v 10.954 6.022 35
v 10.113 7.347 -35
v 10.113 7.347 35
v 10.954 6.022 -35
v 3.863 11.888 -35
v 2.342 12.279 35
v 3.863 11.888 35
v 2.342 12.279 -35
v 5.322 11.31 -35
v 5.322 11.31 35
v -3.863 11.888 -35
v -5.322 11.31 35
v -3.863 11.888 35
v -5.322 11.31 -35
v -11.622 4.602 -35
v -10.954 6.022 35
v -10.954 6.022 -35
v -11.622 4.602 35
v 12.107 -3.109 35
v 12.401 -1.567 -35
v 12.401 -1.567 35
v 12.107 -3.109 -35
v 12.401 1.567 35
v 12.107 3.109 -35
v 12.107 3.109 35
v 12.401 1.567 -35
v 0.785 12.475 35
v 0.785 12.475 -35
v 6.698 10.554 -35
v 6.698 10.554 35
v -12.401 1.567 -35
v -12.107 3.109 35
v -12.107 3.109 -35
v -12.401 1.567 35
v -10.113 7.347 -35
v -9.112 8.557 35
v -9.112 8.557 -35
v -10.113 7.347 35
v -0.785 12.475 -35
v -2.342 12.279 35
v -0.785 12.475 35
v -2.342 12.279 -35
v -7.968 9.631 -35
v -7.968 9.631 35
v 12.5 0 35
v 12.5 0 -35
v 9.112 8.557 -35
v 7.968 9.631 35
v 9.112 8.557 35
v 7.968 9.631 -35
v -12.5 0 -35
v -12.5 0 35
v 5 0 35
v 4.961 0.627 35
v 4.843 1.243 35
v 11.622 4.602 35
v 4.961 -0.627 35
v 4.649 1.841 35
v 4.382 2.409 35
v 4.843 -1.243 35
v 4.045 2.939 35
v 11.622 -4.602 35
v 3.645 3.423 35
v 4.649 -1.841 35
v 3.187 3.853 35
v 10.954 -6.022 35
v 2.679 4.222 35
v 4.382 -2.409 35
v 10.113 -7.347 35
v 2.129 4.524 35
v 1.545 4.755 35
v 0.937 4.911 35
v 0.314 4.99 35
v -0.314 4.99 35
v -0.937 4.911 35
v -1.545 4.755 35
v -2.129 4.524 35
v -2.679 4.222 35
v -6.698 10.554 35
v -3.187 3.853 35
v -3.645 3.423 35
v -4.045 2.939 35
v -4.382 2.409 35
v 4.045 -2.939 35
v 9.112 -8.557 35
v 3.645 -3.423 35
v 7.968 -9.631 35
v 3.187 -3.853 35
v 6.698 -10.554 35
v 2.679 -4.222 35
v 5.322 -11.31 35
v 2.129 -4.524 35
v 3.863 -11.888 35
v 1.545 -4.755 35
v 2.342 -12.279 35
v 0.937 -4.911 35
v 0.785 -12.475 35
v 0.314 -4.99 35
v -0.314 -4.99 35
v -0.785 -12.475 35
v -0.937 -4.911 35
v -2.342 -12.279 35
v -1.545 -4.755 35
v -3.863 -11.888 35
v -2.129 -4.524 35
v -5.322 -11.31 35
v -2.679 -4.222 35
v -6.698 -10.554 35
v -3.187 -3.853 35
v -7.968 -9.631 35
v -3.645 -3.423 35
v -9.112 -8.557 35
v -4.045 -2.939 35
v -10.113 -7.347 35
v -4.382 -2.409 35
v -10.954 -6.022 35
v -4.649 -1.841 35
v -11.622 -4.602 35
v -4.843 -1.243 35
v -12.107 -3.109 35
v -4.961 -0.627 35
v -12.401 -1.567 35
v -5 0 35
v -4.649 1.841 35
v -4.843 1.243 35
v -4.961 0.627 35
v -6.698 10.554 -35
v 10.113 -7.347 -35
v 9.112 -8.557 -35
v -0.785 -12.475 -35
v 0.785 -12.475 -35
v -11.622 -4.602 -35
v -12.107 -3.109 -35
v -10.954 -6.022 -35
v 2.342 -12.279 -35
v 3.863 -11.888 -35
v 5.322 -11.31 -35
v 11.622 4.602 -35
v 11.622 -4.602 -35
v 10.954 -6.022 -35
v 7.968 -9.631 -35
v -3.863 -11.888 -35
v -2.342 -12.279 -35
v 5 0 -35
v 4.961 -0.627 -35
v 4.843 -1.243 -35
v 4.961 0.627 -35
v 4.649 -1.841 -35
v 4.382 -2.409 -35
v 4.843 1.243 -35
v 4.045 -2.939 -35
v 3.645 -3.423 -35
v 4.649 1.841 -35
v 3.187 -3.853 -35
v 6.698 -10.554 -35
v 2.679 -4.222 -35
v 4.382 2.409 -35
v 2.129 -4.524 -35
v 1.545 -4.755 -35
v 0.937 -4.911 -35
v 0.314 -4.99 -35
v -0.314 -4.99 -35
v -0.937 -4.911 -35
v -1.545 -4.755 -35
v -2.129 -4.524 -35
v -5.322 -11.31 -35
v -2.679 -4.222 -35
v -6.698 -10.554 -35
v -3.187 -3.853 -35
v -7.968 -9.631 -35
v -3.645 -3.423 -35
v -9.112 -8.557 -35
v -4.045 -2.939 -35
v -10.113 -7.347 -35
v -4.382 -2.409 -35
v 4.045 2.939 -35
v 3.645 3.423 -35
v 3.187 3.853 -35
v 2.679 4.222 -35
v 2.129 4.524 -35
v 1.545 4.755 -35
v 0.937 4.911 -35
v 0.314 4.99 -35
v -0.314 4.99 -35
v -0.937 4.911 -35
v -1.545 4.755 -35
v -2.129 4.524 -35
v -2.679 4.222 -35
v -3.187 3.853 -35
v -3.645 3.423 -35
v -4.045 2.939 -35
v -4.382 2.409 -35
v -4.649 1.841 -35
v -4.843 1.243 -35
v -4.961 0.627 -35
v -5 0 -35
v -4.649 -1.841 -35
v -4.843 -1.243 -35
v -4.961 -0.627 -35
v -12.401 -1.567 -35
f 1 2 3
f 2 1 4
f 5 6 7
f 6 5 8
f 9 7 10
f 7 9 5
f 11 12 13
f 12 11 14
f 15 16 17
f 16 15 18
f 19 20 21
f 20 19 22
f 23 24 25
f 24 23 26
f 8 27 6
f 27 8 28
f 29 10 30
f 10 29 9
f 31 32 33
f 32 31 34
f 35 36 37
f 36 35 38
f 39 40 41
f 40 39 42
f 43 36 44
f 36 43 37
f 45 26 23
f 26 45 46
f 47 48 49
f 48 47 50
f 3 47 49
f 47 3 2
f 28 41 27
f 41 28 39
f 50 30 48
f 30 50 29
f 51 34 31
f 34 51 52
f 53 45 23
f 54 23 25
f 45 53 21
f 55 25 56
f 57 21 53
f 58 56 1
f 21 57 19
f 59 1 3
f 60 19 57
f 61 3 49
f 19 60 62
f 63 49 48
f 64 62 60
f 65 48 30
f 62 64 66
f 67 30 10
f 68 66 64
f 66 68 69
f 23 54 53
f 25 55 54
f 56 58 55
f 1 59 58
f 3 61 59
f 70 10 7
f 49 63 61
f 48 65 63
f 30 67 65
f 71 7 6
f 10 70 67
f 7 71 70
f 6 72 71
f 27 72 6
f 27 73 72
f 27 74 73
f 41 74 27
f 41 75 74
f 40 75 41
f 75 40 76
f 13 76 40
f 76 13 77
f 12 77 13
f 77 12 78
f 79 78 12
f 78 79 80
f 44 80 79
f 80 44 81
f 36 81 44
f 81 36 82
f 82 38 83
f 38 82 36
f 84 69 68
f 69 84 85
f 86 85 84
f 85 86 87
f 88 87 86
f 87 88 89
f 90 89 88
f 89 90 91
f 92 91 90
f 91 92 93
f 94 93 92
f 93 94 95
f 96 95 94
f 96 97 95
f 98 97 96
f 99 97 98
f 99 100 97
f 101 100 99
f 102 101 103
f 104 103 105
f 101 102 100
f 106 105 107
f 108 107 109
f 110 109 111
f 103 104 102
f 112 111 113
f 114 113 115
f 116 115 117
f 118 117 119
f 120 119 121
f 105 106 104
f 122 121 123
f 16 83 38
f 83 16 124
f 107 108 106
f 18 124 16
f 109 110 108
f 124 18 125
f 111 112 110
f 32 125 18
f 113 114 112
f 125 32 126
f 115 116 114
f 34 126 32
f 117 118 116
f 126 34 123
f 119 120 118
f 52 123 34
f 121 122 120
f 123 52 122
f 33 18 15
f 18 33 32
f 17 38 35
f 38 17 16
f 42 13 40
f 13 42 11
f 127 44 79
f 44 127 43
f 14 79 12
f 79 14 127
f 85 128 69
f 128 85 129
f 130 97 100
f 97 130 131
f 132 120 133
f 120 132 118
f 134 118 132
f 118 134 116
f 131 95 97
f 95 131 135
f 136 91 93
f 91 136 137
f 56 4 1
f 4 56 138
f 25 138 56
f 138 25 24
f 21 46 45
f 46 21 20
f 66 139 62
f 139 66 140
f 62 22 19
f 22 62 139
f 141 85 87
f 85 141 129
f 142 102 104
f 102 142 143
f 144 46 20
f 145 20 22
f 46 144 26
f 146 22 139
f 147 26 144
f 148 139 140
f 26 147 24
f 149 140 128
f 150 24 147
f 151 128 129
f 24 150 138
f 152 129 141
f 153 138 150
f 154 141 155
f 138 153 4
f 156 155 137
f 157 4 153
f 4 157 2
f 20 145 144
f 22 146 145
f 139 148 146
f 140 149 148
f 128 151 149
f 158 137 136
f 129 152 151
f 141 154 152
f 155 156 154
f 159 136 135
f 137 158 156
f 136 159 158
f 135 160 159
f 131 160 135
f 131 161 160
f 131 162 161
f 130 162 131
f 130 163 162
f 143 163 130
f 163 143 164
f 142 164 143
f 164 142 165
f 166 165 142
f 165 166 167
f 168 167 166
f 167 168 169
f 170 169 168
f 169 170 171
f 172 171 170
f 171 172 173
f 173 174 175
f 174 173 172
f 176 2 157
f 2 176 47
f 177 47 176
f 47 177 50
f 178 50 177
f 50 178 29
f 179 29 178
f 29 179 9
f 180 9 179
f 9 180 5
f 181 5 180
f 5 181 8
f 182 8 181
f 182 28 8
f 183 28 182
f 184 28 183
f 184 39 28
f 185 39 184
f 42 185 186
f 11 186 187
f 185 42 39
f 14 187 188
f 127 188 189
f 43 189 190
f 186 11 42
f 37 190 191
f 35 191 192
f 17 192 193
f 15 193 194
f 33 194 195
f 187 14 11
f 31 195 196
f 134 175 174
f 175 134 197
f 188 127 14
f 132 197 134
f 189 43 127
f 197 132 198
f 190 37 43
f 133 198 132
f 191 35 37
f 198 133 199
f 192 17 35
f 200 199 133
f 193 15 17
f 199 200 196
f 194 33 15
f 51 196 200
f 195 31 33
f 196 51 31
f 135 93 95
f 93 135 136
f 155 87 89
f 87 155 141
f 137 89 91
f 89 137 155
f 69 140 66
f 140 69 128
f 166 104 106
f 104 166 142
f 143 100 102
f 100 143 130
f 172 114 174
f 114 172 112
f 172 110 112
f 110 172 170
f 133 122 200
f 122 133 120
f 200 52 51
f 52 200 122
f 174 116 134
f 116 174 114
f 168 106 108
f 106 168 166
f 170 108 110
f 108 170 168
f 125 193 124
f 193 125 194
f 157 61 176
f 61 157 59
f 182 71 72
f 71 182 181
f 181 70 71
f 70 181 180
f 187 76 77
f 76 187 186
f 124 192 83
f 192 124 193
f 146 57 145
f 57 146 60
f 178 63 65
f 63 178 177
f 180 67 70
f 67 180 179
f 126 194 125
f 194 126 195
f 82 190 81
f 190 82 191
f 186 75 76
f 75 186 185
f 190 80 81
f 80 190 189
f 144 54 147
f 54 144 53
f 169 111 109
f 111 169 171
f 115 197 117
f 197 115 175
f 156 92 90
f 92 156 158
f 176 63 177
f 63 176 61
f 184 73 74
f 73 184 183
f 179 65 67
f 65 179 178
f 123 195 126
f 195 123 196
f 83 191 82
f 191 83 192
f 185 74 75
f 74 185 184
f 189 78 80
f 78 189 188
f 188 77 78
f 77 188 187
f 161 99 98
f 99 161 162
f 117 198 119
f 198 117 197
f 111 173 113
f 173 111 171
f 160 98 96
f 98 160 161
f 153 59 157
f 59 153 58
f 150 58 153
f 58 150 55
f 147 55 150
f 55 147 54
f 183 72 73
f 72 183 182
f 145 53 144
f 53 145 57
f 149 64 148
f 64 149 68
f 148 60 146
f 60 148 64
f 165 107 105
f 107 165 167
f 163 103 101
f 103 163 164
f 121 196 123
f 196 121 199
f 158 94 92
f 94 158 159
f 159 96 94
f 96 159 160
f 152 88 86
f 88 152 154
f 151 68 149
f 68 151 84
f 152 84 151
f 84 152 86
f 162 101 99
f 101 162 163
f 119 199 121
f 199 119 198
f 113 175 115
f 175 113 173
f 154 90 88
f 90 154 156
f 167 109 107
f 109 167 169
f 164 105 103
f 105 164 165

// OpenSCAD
$fn = 50;


difference() {
	union() {
		translate(v = [0, 0, -35.0000000000]) {
			cylinder(h = 70, r = 12.5000000000);
		}
	}
	union() {
		translate(v = [0, 0, -100.0000000000]) {
			cylinder(h = 200, r = 5);
		}
	}
}
